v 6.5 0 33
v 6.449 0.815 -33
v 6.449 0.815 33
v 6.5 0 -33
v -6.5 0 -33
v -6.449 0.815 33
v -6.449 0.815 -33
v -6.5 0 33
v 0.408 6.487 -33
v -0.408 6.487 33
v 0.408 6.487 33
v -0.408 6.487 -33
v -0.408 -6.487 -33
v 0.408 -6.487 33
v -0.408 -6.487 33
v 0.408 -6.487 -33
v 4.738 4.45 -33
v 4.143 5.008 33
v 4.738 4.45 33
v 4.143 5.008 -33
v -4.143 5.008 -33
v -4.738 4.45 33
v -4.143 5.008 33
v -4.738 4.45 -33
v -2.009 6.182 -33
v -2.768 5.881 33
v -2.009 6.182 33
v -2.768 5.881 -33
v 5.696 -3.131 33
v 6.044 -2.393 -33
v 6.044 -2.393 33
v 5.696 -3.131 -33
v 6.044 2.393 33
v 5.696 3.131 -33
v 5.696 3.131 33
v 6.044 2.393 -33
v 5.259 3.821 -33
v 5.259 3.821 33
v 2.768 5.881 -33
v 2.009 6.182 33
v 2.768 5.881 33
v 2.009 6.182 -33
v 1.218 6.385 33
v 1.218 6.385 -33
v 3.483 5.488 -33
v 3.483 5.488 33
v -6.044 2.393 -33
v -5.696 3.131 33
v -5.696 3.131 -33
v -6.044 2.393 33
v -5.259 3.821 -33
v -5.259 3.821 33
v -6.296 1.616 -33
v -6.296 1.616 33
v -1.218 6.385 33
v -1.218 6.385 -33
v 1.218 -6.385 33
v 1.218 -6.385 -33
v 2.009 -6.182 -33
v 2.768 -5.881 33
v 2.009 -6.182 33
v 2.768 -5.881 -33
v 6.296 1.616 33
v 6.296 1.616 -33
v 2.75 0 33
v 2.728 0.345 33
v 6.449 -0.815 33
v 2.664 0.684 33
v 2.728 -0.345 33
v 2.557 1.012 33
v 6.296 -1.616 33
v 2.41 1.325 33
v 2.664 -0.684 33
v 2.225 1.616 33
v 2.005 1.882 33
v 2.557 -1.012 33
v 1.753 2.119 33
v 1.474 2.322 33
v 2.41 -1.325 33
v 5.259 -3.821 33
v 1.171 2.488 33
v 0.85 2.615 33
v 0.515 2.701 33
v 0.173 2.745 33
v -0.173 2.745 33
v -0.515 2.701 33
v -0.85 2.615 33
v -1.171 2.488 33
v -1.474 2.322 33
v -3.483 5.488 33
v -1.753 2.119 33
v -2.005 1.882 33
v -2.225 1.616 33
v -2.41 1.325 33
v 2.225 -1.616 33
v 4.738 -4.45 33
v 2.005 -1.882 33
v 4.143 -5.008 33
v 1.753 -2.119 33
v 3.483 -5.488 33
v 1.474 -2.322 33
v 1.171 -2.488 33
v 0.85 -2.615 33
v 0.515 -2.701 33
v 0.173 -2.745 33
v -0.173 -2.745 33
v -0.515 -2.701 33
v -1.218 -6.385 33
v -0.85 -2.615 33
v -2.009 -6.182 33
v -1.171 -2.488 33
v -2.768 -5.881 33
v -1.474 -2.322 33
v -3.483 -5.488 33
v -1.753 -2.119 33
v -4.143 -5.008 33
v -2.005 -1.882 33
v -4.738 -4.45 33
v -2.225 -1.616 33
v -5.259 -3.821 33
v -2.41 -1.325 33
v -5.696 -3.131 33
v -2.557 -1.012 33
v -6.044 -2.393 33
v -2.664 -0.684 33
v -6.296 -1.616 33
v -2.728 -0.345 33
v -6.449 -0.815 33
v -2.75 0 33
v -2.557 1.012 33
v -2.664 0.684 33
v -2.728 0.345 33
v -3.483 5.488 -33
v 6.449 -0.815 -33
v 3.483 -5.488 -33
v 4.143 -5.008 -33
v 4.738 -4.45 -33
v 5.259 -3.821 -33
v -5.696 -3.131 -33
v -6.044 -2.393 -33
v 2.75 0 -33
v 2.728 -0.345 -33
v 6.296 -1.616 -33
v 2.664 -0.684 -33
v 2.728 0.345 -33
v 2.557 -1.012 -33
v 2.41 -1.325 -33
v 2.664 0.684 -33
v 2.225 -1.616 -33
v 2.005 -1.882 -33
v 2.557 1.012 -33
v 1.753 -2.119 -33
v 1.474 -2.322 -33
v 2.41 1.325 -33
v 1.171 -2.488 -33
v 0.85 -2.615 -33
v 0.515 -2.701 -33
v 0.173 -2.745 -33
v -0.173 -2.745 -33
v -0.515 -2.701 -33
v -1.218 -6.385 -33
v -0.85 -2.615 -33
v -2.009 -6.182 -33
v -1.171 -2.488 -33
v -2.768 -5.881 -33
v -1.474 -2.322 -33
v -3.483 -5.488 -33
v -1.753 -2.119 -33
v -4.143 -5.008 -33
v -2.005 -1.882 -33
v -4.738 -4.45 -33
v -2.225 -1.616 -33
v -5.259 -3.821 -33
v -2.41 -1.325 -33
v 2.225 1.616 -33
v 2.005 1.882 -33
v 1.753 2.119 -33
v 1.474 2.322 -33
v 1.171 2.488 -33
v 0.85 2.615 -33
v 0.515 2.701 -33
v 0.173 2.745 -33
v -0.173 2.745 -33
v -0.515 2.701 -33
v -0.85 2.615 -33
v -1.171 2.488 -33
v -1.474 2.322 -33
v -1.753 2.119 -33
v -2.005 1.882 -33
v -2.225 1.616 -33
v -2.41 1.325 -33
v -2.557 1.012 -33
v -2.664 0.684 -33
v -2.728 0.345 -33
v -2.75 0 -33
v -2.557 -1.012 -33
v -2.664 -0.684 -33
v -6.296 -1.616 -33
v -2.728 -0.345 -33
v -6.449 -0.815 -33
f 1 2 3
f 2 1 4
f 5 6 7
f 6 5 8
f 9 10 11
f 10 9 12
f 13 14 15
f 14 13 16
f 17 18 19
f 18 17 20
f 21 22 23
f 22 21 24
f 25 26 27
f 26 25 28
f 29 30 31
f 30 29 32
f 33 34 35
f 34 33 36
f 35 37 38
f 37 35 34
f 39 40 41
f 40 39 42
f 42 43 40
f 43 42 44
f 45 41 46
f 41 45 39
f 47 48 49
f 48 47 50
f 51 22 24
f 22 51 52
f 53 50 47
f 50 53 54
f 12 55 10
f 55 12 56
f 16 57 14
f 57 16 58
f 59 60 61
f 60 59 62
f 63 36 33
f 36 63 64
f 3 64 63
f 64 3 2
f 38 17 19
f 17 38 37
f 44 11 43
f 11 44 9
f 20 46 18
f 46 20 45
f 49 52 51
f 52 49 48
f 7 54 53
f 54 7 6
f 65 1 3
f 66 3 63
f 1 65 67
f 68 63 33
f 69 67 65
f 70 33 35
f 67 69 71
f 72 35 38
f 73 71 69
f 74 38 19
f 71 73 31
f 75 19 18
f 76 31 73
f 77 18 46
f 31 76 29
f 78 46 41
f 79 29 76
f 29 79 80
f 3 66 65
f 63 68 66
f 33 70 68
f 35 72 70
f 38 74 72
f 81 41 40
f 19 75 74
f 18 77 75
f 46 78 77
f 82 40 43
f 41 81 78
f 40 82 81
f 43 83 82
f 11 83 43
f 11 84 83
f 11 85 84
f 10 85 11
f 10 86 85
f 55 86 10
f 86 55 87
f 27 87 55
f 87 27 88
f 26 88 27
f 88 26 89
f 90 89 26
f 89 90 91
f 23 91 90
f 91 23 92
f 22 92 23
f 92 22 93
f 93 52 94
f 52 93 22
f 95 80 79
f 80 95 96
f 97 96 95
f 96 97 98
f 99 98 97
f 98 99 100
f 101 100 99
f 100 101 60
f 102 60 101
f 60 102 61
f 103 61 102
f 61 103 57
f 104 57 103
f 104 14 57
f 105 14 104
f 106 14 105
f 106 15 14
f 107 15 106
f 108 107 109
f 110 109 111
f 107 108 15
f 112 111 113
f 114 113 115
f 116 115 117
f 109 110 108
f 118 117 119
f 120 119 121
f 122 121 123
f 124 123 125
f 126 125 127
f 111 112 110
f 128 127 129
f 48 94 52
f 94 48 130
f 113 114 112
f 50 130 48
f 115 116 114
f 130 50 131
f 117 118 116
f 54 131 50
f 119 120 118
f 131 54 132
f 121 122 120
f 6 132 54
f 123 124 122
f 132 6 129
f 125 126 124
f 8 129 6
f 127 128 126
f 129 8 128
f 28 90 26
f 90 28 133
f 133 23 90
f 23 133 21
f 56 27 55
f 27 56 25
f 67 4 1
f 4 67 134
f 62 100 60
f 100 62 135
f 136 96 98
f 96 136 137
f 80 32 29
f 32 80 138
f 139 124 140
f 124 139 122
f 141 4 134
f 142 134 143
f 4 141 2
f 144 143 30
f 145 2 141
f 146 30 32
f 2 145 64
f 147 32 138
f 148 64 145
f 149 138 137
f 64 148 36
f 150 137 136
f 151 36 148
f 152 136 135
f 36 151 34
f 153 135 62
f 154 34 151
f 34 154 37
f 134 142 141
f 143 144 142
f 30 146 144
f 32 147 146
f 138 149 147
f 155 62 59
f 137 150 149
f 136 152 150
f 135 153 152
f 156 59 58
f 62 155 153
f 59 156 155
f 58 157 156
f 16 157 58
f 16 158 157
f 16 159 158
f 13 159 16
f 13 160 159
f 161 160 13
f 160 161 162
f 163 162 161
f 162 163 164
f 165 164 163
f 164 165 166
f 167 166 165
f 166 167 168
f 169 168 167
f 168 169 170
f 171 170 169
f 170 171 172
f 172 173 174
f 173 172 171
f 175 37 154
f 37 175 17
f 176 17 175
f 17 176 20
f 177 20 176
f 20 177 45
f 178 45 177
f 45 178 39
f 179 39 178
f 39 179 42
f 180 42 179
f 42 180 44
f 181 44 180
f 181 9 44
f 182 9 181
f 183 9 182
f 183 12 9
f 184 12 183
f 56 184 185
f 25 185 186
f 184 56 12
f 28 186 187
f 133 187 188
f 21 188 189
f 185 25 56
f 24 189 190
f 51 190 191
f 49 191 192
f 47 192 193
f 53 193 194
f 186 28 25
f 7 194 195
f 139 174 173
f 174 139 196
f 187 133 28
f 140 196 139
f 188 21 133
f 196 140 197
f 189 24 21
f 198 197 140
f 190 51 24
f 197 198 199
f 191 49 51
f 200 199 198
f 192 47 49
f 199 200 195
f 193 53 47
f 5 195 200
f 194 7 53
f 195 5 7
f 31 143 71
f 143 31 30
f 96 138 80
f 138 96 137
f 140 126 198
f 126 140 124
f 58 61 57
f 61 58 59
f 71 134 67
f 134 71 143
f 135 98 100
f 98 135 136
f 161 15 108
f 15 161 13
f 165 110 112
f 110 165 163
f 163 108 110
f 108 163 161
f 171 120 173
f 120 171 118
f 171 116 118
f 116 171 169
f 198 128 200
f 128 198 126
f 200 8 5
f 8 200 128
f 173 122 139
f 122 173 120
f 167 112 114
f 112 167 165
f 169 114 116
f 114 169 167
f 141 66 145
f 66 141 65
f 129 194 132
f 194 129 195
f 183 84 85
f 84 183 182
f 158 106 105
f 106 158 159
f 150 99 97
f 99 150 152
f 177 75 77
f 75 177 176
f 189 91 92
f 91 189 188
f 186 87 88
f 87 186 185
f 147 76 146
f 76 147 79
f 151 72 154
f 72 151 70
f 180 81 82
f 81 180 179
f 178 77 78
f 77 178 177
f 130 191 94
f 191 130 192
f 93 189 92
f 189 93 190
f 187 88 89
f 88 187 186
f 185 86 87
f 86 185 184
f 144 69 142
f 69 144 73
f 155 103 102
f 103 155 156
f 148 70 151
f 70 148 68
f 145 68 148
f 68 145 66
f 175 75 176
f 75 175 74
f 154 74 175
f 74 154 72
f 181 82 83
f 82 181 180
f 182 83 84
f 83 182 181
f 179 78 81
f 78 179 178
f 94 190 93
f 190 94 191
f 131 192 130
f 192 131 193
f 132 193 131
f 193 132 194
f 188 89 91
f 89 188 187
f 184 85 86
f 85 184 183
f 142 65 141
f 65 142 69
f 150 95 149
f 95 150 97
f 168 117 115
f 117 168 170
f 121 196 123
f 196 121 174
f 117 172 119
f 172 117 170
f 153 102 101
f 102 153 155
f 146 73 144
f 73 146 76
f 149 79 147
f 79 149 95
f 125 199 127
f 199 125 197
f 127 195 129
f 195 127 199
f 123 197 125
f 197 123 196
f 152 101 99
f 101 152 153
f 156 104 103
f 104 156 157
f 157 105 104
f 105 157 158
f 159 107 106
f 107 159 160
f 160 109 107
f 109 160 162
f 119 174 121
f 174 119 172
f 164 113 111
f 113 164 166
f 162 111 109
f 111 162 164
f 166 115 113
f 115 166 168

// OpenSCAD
$fn = 50;


difference() {
	union() {
		translate(v = [0, 0, -33.0000000000]) {
			cylinder(h = 66, r = 6.5000000000);
		}
	}
	union() {
		translate(v = [0, 0, -100.0000000000]) {
			cylinder(h = 200, r = 2.7500000000);
		}
	}
}
